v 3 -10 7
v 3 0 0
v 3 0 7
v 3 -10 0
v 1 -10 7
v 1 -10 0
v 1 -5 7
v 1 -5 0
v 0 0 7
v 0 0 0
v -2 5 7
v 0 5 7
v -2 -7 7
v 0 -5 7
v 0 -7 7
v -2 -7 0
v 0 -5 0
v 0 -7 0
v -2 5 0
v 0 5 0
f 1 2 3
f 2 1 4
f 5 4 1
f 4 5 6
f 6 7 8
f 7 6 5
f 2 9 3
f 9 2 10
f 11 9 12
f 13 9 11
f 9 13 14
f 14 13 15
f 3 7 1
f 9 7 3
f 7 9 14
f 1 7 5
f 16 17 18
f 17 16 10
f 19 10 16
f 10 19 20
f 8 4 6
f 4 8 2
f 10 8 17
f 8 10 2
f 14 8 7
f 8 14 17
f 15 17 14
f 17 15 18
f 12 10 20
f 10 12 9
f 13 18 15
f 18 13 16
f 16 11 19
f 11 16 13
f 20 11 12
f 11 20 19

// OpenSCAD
translate([0,0,3.5]){
    rotate([90,180,0]){
        thing();
    }  
}


module thing(){
    translate([-2,0,5]){
        cube([2,7,10], center=true);
    }

    translate([-1,0,2.5]){
        cube([2,7,5], center=true);
    }

    translate([1,0,1]){
        cube([2,7,12], center=true);
    }
}
